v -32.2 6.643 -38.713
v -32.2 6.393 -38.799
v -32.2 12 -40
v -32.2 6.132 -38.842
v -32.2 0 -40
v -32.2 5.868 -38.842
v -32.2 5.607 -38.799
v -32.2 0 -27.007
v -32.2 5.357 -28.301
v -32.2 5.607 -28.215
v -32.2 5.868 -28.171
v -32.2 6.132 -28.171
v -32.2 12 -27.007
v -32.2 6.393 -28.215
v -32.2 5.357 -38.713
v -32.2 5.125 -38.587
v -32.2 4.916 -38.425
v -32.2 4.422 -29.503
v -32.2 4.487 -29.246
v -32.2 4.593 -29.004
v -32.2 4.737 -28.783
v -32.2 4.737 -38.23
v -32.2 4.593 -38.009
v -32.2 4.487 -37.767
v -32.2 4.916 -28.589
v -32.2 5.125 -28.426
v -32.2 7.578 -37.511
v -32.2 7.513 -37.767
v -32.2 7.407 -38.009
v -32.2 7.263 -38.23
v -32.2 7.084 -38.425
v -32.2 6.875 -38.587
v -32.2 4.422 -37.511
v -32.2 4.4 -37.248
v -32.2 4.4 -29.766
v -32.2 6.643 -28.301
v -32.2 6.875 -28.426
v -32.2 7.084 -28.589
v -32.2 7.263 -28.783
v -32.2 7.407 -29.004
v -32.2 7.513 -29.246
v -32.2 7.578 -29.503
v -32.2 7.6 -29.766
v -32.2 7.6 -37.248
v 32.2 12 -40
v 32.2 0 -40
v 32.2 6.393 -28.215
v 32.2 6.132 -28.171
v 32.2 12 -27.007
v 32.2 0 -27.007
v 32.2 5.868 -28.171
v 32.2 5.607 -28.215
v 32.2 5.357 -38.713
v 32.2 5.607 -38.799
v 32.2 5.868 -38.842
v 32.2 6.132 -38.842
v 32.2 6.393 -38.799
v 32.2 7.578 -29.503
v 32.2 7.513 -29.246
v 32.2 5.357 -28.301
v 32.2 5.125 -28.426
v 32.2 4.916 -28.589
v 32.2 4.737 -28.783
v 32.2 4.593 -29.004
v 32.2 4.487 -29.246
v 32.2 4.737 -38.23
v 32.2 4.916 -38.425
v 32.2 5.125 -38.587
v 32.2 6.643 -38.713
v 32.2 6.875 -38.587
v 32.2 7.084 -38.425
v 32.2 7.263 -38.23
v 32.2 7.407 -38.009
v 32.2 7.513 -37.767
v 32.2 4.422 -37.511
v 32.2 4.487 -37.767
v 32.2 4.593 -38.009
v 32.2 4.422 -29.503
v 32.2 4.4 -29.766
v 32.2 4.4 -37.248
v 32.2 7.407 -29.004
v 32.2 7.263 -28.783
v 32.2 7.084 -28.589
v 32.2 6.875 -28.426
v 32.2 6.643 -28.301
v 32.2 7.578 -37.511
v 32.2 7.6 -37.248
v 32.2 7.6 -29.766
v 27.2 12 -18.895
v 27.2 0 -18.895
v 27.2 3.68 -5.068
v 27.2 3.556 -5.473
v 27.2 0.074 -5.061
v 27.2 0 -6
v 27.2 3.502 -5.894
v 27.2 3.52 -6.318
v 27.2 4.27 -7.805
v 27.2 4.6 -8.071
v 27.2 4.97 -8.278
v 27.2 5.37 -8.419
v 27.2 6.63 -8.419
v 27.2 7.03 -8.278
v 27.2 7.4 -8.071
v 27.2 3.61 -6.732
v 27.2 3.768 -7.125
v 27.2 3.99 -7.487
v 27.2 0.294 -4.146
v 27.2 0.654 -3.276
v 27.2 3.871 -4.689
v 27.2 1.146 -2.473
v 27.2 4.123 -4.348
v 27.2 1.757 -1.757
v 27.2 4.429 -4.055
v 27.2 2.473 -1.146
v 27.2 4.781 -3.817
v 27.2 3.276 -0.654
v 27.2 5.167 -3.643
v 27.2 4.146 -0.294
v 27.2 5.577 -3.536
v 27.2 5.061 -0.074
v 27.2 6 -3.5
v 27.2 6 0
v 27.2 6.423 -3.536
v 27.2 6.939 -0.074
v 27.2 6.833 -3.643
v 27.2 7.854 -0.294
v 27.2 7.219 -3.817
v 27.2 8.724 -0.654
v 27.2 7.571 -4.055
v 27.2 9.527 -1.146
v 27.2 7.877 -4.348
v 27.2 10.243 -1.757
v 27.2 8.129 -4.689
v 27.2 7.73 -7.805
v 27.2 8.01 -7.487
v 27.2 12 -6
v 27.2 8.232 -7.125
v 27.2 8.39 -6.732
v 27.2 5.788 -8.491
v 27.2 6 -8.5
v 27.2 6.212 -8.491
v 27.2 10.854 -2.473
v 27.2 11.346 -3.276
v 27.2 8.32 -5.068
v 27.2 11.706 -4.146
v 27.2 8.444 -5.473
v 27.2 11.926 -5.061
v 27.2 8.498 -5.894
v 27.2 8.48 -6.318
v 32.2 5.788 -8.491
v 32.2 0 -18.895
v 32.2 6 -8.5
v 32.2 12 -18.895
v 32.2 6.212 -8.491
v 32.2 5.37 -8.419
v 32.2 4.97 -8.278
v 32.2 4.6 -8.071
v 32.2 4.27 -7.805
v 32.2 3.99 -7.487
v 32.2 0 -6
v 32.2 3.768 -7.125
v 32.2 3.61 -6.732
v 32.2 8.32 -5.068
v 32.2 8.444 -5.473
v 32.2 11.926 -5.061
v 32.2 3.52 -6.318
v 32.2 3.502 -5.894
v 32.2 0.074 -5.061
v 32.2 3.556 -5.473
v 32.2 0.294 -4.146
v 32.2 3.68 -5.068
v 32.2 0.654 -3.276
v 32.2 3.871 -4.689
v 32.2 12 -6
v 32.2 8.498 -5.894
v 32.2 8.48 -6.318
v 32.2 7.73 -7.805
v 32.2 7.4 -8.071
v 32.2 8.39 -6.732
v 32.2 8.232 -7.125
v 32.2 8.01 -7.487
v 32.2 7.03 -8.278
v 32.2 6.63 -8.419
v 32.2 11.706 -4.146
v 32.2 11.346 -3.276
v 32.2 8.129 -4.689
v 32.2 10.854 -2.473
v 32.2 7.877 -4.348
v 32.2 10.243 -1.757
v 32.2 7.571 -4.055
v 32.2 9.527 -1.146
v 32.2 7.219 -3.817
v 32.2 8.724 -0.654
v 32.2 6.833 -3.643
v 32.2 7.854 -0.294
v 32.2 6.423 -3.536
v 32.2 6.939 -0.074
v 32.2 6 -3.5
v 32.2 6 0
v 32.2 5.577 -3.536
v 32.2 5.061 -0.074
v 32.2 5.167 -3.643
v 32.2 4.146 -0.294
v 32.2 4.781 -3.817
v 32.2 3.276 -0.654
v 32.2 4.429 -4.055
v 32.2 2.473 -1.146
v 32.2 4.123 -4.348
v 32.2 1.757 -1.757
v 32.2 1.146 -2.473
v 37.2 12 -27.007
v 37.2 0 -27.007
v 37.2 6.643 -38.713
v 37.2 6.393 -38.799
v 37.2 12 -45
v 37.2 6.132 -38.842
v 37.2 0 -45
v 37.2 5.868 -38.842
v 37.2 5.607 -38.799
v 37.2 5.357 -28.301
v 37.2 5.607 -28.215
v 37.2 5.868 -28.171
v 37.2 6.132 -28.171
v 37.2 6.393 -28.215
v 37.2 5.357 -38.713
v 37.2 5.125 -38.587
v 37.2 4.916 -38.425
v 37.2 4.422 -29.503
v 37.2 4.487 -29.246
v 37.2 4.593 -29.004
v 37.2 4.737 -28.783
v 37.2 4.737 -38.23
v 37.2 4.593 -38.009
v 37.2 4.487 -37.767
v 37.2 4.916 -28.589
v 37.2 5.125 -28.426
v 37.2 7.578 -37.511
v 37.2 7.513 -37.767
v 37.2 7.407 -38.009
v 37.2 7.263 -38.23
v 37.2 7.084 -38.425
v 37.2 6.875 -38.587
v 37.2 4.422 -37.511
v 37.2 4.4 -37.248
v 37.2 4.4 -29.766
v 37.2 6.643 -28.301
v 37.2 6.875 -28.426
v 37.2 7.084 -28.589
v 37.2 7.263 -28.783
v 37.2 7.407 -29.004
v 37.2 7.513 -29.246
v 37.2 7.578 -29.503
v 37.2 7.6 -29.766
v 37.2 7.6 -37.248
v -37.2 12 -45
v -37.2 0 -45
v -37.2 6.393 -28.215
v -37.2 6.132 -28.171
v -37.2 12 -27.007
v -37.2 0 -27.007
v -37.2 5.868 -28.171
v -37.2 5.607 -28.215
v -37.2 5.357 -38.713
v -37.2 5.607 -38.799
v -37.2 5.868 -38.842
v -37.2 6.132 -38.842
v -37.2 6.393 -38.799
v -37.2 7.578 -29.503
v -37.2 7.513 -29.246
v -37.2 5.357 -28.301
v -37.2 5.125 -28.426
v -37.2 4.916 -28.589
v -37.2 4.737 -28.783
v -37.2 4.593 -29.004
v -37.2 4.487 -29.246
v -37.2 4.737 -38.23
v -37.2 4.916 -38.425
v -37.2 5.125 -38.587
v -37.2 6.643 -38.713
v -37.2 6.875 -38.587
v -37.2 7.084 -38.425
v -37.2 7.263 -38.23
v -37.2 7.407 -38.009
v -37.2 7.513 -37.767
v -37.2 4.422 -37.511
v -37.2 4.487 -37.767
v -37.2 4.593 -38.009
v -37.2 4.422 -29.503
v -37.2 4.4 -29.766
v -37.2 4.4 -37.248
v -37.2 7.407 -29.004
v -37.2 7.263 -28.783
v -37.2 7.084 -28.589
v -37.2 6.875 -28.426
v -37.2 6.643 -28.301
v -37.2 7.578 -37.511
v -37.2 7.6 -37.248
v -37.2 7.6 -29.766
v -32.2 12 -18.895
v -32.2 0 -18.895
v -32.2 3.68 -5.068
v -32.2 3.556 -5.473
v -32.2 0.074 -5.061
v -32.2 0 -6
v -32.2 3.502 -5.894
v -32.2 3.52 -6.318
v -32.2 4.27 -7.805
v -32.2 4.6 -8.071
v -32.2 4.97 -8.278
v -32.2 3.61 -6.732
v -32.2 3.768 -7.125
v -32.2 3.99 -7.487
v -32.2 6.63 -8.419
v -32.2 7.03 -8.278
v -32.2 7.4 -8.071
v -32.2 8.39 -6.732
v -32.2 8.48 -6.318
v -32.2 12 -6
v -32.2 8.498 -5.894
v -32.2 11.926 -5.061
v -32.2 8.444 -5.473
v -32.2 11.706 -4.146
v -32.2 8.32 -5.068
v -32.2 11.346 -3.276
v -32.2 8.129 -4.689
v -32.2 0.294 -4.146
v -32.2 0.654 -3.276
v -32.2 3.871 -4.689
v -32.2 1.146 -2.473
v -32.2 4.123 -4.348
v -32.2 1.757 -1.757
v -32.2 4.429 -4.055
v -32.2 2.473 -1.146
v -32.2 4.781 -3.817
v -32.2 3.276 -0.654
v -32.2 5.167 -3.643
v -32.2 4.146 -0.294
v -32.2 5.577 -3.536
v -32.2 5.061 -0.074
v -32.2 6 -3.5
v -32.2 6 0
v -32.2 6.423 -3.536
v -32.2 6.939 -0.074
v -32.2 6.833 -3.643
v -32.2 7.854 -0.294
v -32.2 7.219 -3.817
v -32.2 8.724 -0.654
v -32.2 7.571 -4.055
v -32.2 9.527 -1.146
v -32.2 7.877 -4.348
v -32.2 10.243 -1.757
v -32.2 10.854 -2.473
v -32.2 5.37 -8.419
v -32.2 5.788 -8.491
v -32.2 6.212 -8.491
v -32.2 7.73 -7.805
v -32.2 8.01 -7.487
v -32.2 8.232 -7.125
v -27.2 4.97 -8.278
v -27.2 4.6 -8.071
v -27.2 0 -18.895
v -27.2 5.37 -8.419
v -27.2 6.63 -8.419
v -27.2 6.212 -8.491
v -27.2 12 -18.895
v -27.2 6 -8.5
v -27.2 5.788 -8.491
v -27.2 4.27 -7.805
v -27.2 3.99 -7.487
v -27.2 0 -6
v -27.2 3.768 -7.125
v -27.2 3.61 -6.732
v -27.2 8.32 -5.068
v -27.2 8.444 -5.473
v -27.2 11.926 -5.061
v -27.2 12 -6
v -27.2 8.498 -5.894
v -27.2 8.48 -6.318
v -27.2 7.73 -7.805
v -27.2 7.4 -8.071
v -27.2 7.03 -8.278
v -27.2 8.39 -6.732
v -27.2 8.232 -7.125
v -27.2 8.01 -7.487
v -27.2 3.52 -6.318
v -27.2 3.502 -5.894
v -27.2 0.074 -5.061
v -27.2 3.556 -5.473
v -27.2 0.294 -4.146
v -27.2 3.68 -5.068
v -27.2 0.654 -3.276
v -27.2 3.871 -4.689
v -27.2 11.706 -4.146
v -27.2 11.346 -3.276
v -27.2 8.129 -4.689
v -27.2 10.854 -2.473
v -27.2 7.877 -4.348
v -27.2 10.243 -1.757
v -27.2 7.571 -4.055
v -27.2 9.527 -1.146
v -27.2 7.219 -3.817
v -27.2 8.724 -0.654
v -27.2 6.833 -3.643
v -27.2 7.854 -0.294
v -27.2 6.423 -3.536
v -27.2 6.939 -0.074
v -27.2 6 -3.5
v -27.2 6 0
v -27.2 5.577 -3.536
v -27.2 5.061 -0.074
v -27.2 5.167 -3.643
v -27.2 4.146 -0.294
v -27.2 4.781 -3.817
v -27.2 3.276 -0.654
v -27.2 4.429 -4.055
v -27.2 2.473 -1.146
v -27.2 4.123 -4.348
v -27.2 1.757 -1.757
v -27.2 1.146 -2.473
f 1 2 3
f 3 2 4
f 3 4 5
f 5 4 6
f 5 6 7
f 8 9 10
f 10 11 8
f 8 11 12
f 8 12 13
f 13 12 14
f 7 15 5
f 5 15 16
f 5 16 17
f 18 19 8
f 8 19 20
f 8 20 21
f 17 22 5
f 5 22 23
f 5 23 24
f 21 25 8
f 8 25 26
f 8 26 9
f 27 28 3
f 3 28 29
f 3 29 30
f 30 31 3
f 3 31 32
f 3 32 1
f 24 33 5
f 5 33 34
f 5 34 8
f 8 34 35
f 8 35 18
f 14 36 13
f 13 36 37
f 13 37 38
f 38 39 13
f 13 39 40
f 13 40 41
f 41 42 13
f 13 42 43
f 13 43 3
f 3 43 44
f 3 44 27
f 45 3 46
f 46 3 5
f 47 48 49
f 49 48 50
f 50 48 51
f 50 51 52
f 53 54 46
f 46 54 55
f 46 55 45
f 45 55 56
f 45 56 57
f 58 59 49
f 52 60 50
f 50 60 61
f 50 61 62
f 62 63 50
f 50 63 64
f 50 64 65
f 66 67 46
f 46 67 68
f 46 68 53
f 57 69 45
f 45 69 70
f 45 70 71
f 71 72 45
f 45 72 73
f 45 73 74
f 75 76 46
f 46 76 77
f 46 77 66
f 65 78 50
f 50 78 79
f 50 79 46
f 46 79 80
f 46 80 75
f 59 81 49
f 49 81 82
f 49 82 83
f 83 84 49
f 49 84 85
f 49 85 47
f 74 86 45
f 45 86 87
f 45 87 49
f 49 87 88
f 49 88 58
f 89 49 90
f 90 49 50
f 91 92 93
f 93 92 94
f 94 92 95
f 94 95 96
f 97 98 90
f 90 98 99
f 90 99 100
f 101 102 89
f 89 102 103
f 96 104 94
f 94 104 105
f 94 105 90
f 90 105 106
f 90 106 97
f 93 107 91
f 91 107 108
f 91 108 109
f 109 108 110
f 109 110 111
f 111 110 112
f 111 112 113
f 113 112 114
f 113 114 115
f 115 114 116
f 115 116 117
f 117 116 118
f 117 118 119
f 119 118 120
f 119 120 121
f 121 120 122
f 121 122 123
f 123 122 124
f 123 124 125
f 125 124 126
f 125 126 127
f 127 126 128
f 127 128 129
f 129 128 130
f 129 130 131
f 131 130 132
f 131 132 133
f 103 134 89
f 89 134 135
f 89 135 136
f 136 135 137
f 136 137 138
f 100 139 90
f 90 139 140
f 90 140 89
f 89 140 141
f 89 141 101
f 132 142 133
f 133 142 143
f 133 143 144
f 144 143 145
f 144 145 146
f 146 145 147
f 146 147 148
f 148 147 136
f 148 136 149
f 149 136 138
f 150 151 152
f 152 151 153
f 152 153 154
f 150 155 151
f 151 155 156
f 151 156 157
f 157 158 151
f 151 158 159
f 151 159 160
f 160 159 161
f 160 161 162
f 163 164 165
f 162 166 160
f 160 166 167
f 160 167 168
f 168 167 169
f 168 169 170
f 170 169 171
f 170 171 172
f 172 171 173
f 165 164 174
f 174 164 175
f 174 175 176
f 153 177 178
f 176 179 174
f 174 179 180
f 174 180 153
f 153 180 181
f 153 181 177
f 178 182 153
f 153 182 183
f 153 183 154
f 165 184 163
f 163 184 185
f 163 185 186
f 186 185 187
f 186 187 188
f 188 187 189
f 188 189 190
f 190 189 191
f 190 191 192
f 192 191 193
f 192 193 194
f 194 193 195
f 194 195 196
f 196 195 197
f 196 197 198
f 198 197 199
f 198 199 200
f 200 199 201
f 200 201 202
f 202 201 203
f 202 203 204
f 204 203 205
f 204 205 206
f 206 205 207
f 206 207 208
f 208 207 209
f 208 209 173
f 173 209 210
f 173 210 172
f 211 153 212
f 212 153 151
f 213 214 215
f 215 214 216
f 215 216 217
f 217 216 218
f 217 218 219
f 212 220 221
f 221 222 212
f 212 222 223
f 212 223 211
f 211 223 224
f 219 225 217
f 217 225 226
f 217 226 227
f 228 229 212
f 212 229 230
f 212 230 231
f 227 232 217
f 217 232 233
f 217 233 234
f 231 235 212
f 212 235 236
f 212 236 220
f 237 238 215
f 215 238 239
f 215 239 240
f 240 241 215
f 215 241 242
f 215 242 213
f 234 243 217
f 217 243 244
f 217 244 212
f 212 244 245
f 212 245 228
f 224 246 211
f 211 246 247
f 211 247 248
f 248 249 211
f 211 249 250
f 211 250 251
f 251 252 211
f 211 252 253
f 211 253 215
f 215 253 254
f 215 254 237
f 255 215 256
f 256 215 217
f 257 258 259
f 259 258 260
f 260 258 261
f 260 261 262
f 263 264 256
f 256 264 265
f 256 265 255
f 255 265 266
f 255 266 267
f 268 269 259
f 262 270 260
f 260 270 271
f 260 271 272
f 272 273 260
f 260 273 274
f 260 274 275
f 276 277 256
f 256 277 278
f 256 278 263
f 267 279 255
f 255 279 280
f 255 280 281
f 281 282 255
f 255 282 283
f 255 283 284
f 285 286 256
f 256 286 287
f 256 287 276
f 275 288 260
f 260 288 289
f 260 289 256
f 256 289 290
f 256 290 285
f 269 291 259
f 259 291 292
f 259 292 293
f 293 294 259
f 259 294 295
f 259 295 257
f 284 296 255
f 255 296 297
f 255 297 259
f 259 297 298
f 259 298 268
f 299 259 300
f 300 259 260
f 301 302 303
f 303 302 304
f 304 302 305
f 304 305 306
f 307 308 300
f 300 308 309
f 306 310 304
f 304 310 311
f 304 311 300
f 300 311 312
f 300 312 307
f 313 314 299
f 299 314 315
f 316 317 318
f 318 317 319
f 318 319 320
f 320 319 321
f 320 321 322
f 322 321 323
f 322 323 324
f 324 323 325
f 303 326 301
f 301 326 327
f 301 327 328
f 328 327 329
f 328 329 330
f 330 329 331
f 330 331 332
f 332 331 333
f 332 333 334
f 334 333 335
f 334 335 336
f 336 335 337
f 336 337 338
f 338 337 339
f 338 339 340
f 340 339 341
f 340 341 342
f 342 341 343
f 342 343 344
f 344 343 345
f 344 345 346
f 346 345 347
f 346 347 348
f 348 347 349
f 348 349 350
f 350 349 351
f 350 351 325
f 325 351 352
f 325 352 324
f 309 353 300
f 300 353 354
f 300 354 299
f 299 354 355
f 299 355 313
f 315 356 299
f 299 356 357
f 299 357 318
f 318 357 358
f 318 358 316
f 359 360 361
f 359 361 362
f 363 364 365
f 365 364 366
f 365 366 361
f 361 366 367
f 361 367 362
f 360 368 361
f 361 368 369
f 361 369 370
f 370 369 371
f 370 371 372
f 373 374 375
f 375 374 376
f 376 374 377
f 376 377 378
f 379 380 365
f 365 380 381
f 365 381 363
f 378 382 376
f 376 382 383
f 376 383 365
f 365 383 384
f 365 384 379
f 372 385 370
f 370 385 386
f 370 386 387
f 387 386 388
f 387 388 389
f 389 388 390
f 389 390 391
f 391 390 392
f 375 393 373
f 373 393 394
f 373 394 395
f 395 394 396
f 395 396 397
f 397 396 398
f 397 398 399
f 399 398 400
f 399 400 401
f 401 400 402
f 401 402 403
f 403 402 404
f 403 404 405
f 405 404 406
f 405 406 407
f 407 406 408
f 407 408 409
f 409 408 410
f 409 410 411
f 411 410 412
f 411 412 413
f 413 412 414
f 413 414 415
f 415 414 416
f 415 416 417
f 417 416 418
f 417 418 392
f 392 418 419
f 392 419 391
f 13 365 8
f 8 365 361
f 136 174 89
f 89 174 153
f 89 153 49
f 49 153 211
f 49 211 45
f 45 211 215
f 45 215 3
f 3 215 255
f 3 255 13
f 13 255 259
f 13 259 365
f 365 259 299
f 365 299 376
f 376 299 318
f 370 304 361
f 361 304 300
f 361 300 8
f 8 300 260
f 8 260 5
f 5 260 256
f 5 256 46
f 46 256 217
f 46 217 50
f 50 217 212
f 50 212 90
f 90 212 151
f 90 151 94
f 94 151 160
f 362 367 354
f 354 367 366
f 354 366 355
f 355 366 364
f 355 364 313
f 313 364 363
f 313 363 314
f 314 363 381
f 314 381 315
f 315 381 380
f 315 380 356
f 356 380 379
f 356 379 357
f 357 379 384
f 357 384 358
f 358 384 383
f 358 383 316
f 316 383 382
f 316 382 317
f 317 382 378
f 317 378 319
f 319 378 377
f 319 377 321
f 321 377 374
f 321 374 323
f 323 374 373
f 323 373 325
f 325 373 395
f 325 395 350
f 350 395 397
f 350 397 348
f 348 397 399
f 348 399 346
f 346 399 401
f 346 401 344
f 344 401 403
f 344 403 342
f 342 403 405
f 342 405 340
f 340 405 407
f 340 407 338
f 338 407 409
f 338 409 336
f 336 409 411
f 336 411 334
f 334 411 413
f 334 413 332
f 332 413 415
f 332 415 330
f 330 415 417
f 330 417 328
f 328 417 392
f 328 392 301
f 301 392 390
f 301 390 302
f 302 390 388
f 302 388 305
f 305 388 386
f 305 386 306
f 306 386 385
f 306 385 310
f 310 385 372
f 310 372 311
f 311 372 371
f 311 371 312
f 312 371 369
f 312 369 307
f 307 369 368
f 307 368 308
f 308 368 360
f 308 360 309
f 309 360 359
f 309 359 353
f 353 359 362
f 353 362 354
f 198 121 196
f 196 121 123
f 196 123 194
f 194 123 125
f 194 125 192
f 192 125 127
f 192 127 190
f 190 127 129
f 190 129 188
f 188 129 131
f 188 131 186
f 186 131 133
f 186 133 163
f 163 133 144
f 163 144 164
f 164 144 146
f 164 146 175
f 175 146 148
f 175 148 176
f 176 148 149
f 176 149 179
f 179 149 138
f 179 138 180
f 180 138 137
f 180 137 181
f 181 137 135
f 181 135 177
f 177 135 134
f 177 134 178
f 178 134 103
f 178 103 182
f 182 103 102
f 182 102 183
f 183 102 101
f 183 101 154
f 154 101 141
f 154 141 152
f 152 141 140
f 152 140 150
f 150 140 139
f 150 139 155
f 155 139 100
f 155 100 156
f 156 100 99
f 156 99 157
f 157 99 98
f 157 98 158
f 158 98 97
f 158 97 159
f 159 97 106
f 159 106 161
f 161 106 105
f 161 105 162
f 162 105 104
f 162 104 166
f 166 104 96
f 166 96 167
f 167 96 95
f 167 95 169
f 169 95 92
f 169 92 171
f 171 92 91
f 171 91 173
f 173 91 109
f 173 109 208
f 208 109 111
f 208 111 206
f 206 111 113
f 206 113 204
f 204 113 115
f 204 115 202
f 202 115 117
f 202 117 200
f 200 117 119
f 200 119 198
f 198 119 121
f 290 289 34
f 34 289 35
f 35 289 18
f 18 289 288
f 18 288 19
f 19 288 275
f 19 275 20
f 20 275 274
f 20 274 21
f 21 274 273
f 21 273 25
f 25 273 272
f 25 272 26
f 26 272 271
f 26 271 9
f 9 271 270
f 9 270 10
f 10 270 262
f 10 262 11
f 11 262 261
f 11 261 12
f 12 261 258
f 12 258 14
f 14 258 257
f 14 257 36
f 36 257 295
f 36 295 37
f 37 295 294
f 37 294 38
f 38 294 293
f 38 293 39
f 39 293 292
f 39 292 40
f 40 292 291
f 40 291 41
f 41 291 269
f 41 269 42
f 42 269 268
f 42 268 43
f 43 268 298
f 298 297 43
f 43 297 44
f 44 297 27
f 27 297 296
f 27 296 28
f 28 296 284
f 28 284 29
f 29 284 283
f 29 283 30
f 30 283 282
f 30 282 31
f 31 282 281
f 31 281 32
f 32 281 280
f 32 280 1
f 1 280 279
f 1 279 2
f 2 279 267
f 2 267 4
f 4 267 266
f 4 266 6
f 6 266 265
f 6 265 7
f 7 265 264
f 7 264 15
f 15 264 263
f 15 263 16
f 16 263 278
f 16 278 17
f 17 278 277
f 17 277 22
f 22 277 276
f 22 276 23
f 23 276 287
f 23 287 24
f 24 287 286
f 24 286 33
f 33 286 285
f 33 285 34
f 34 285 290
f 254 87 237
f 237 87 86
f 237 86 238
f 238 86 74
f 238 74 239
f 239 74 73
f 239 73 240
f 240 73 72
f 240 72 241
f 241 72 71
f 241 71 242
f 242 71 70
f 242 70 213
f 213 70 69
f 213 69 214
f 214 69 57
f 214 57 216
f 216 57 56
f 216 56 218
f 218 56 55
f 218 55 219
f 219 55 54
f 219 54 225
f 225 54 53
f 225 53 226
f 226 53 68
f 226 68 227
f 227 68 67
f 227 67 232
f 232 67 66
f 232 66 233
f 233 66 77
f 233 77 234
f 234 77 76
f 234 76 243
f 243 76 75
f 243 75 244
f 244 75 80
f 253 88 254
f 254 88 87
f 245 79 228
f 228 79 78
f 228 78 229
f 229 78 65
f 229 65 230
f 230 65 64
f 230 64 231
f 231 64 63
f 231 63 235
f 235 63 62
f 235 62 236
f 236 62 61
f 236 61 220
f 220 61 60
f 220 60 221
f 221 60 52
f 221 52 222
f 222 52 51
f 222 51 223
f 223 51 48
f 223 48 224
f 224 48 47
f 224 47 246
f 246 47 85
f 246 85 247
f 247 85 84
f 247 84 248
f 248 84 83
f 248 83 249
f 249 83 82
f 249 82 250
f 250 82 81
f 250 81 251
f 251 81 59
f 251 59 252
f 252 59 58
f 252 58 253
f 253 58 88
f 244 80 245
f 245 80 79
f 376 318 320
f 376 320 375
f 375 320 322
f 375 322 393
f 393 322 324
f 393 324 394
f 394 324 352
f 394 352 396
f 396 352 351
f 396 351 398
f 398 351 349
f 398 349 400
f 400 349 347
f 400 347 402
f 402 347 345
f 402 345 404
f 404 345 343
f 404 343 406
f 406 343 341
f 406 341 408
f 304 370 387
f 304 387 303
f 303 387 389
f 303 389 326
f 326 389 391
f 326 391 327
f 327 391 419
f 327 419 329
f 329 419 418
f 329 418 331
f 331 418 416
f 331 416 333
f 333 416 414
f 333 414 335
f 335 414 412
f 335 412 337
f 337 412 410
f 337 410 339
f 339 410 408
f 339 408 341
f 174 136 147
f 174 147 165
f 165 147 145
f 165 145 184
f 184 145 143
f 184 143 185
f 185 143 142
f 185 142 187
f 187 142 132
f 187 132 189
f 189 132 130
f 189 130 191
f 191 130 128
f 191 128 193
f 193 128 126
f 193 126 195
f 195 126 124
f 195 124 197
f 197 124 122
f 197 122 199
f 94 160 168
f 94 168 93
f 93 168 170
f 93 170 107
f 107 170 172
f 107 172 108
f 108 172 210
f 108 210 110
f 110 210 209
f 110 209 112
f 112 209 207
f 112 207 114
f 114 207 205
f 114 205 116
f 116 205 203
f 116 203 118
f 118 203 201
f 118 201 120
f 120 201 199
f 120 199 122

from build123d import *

# Parameters (mm, degrees)
BOSS_EXTRU_1_DEPTH      = 12
ESQUISSE2_R             = 2.5
ENL_V_MAT_EXTRU_1_DEPTH = 84.578466126
ENL_V_MAT_EXTRU_2_DEPTH = 88.774483764
CONG_1_R                = 6


with BuildPart() as part:
    # Esquisse1 → Boss.-Extru.1 (new body)
    with BuildSketch(Plane(origin=(0, 0, 0), x_dir=(1, 0, 0), z_dir=(0, 1, 0))):
        Polygon((-32.2, 27.00676783), (-32.2, 18.895405671), (-37.2, 27.00676783), (-37.2, 45), (37.2, 45), (37.2, 27.00676783), (32.2, 18.895405671), (32.2, 0), (27.2, 0), (27.2, 18.895405671), (32.2, 27.00676783), (32.2, 40), (-32.2, 40), align=None)
        Polygon((-32.2, 27.00676783), (-27.2, 18.895405671), (-27.2, 0), (-32.2, 0), (-32.2, 18.895405671), align=None)
    extrude(amount=BOSS_EXTRU_1_DEPTH)

    # Esquisse2 → Enlèv. mat.-Extru.1 (cut, through all)
    with BuildSketch(Plane.ZY.offset(32.2)):
        with Locations((-6, 6)):
            Circle(ESQUISSE2_R)
    extrude(amount=-ENL_V_MAT_EXTRU_1_DEPTH, mode=Mode.SUBTRACT)

    # Esquisse5 → Enlèv. mat.-Extru.2 (cut, through all)
    with BuildSketch(Plane.ZY.offset(37.2)):
        with BuildLine():
            Line((-37.247636958, 7.6), (-29.765898702, 7.6))
            ThreePointArc((-29.765898702, 7.6), (-28.165898702, 6), (-29.765898702, 4.4))
            Line((-29.765898702, 4.4), (-37.247636958, 4.4))
            ThreePointArc((-37.247636958, 4.4), (-38.847636958, 6), (-37.247636958, 7.6))
        make_face()
    extrude(amount=-ENL_V_MAT_EXTRU_2_DEPTH, mode=Mode.SUBTRACT)

    # Congé1
    cong_1_edges = [part.edges().sort_by_distance(p)[0] for p in [
        (-29.7, 0, 0),
        (-29.7, 12, 0),
        (29.7, 0, 0),
        (29.7, 12, 0),
    ]]
    fillet(cong_1_edges, radius=CONG_1_R - 0.0001)  # a hair under: the kernel refuses the full size


solid = part.part
